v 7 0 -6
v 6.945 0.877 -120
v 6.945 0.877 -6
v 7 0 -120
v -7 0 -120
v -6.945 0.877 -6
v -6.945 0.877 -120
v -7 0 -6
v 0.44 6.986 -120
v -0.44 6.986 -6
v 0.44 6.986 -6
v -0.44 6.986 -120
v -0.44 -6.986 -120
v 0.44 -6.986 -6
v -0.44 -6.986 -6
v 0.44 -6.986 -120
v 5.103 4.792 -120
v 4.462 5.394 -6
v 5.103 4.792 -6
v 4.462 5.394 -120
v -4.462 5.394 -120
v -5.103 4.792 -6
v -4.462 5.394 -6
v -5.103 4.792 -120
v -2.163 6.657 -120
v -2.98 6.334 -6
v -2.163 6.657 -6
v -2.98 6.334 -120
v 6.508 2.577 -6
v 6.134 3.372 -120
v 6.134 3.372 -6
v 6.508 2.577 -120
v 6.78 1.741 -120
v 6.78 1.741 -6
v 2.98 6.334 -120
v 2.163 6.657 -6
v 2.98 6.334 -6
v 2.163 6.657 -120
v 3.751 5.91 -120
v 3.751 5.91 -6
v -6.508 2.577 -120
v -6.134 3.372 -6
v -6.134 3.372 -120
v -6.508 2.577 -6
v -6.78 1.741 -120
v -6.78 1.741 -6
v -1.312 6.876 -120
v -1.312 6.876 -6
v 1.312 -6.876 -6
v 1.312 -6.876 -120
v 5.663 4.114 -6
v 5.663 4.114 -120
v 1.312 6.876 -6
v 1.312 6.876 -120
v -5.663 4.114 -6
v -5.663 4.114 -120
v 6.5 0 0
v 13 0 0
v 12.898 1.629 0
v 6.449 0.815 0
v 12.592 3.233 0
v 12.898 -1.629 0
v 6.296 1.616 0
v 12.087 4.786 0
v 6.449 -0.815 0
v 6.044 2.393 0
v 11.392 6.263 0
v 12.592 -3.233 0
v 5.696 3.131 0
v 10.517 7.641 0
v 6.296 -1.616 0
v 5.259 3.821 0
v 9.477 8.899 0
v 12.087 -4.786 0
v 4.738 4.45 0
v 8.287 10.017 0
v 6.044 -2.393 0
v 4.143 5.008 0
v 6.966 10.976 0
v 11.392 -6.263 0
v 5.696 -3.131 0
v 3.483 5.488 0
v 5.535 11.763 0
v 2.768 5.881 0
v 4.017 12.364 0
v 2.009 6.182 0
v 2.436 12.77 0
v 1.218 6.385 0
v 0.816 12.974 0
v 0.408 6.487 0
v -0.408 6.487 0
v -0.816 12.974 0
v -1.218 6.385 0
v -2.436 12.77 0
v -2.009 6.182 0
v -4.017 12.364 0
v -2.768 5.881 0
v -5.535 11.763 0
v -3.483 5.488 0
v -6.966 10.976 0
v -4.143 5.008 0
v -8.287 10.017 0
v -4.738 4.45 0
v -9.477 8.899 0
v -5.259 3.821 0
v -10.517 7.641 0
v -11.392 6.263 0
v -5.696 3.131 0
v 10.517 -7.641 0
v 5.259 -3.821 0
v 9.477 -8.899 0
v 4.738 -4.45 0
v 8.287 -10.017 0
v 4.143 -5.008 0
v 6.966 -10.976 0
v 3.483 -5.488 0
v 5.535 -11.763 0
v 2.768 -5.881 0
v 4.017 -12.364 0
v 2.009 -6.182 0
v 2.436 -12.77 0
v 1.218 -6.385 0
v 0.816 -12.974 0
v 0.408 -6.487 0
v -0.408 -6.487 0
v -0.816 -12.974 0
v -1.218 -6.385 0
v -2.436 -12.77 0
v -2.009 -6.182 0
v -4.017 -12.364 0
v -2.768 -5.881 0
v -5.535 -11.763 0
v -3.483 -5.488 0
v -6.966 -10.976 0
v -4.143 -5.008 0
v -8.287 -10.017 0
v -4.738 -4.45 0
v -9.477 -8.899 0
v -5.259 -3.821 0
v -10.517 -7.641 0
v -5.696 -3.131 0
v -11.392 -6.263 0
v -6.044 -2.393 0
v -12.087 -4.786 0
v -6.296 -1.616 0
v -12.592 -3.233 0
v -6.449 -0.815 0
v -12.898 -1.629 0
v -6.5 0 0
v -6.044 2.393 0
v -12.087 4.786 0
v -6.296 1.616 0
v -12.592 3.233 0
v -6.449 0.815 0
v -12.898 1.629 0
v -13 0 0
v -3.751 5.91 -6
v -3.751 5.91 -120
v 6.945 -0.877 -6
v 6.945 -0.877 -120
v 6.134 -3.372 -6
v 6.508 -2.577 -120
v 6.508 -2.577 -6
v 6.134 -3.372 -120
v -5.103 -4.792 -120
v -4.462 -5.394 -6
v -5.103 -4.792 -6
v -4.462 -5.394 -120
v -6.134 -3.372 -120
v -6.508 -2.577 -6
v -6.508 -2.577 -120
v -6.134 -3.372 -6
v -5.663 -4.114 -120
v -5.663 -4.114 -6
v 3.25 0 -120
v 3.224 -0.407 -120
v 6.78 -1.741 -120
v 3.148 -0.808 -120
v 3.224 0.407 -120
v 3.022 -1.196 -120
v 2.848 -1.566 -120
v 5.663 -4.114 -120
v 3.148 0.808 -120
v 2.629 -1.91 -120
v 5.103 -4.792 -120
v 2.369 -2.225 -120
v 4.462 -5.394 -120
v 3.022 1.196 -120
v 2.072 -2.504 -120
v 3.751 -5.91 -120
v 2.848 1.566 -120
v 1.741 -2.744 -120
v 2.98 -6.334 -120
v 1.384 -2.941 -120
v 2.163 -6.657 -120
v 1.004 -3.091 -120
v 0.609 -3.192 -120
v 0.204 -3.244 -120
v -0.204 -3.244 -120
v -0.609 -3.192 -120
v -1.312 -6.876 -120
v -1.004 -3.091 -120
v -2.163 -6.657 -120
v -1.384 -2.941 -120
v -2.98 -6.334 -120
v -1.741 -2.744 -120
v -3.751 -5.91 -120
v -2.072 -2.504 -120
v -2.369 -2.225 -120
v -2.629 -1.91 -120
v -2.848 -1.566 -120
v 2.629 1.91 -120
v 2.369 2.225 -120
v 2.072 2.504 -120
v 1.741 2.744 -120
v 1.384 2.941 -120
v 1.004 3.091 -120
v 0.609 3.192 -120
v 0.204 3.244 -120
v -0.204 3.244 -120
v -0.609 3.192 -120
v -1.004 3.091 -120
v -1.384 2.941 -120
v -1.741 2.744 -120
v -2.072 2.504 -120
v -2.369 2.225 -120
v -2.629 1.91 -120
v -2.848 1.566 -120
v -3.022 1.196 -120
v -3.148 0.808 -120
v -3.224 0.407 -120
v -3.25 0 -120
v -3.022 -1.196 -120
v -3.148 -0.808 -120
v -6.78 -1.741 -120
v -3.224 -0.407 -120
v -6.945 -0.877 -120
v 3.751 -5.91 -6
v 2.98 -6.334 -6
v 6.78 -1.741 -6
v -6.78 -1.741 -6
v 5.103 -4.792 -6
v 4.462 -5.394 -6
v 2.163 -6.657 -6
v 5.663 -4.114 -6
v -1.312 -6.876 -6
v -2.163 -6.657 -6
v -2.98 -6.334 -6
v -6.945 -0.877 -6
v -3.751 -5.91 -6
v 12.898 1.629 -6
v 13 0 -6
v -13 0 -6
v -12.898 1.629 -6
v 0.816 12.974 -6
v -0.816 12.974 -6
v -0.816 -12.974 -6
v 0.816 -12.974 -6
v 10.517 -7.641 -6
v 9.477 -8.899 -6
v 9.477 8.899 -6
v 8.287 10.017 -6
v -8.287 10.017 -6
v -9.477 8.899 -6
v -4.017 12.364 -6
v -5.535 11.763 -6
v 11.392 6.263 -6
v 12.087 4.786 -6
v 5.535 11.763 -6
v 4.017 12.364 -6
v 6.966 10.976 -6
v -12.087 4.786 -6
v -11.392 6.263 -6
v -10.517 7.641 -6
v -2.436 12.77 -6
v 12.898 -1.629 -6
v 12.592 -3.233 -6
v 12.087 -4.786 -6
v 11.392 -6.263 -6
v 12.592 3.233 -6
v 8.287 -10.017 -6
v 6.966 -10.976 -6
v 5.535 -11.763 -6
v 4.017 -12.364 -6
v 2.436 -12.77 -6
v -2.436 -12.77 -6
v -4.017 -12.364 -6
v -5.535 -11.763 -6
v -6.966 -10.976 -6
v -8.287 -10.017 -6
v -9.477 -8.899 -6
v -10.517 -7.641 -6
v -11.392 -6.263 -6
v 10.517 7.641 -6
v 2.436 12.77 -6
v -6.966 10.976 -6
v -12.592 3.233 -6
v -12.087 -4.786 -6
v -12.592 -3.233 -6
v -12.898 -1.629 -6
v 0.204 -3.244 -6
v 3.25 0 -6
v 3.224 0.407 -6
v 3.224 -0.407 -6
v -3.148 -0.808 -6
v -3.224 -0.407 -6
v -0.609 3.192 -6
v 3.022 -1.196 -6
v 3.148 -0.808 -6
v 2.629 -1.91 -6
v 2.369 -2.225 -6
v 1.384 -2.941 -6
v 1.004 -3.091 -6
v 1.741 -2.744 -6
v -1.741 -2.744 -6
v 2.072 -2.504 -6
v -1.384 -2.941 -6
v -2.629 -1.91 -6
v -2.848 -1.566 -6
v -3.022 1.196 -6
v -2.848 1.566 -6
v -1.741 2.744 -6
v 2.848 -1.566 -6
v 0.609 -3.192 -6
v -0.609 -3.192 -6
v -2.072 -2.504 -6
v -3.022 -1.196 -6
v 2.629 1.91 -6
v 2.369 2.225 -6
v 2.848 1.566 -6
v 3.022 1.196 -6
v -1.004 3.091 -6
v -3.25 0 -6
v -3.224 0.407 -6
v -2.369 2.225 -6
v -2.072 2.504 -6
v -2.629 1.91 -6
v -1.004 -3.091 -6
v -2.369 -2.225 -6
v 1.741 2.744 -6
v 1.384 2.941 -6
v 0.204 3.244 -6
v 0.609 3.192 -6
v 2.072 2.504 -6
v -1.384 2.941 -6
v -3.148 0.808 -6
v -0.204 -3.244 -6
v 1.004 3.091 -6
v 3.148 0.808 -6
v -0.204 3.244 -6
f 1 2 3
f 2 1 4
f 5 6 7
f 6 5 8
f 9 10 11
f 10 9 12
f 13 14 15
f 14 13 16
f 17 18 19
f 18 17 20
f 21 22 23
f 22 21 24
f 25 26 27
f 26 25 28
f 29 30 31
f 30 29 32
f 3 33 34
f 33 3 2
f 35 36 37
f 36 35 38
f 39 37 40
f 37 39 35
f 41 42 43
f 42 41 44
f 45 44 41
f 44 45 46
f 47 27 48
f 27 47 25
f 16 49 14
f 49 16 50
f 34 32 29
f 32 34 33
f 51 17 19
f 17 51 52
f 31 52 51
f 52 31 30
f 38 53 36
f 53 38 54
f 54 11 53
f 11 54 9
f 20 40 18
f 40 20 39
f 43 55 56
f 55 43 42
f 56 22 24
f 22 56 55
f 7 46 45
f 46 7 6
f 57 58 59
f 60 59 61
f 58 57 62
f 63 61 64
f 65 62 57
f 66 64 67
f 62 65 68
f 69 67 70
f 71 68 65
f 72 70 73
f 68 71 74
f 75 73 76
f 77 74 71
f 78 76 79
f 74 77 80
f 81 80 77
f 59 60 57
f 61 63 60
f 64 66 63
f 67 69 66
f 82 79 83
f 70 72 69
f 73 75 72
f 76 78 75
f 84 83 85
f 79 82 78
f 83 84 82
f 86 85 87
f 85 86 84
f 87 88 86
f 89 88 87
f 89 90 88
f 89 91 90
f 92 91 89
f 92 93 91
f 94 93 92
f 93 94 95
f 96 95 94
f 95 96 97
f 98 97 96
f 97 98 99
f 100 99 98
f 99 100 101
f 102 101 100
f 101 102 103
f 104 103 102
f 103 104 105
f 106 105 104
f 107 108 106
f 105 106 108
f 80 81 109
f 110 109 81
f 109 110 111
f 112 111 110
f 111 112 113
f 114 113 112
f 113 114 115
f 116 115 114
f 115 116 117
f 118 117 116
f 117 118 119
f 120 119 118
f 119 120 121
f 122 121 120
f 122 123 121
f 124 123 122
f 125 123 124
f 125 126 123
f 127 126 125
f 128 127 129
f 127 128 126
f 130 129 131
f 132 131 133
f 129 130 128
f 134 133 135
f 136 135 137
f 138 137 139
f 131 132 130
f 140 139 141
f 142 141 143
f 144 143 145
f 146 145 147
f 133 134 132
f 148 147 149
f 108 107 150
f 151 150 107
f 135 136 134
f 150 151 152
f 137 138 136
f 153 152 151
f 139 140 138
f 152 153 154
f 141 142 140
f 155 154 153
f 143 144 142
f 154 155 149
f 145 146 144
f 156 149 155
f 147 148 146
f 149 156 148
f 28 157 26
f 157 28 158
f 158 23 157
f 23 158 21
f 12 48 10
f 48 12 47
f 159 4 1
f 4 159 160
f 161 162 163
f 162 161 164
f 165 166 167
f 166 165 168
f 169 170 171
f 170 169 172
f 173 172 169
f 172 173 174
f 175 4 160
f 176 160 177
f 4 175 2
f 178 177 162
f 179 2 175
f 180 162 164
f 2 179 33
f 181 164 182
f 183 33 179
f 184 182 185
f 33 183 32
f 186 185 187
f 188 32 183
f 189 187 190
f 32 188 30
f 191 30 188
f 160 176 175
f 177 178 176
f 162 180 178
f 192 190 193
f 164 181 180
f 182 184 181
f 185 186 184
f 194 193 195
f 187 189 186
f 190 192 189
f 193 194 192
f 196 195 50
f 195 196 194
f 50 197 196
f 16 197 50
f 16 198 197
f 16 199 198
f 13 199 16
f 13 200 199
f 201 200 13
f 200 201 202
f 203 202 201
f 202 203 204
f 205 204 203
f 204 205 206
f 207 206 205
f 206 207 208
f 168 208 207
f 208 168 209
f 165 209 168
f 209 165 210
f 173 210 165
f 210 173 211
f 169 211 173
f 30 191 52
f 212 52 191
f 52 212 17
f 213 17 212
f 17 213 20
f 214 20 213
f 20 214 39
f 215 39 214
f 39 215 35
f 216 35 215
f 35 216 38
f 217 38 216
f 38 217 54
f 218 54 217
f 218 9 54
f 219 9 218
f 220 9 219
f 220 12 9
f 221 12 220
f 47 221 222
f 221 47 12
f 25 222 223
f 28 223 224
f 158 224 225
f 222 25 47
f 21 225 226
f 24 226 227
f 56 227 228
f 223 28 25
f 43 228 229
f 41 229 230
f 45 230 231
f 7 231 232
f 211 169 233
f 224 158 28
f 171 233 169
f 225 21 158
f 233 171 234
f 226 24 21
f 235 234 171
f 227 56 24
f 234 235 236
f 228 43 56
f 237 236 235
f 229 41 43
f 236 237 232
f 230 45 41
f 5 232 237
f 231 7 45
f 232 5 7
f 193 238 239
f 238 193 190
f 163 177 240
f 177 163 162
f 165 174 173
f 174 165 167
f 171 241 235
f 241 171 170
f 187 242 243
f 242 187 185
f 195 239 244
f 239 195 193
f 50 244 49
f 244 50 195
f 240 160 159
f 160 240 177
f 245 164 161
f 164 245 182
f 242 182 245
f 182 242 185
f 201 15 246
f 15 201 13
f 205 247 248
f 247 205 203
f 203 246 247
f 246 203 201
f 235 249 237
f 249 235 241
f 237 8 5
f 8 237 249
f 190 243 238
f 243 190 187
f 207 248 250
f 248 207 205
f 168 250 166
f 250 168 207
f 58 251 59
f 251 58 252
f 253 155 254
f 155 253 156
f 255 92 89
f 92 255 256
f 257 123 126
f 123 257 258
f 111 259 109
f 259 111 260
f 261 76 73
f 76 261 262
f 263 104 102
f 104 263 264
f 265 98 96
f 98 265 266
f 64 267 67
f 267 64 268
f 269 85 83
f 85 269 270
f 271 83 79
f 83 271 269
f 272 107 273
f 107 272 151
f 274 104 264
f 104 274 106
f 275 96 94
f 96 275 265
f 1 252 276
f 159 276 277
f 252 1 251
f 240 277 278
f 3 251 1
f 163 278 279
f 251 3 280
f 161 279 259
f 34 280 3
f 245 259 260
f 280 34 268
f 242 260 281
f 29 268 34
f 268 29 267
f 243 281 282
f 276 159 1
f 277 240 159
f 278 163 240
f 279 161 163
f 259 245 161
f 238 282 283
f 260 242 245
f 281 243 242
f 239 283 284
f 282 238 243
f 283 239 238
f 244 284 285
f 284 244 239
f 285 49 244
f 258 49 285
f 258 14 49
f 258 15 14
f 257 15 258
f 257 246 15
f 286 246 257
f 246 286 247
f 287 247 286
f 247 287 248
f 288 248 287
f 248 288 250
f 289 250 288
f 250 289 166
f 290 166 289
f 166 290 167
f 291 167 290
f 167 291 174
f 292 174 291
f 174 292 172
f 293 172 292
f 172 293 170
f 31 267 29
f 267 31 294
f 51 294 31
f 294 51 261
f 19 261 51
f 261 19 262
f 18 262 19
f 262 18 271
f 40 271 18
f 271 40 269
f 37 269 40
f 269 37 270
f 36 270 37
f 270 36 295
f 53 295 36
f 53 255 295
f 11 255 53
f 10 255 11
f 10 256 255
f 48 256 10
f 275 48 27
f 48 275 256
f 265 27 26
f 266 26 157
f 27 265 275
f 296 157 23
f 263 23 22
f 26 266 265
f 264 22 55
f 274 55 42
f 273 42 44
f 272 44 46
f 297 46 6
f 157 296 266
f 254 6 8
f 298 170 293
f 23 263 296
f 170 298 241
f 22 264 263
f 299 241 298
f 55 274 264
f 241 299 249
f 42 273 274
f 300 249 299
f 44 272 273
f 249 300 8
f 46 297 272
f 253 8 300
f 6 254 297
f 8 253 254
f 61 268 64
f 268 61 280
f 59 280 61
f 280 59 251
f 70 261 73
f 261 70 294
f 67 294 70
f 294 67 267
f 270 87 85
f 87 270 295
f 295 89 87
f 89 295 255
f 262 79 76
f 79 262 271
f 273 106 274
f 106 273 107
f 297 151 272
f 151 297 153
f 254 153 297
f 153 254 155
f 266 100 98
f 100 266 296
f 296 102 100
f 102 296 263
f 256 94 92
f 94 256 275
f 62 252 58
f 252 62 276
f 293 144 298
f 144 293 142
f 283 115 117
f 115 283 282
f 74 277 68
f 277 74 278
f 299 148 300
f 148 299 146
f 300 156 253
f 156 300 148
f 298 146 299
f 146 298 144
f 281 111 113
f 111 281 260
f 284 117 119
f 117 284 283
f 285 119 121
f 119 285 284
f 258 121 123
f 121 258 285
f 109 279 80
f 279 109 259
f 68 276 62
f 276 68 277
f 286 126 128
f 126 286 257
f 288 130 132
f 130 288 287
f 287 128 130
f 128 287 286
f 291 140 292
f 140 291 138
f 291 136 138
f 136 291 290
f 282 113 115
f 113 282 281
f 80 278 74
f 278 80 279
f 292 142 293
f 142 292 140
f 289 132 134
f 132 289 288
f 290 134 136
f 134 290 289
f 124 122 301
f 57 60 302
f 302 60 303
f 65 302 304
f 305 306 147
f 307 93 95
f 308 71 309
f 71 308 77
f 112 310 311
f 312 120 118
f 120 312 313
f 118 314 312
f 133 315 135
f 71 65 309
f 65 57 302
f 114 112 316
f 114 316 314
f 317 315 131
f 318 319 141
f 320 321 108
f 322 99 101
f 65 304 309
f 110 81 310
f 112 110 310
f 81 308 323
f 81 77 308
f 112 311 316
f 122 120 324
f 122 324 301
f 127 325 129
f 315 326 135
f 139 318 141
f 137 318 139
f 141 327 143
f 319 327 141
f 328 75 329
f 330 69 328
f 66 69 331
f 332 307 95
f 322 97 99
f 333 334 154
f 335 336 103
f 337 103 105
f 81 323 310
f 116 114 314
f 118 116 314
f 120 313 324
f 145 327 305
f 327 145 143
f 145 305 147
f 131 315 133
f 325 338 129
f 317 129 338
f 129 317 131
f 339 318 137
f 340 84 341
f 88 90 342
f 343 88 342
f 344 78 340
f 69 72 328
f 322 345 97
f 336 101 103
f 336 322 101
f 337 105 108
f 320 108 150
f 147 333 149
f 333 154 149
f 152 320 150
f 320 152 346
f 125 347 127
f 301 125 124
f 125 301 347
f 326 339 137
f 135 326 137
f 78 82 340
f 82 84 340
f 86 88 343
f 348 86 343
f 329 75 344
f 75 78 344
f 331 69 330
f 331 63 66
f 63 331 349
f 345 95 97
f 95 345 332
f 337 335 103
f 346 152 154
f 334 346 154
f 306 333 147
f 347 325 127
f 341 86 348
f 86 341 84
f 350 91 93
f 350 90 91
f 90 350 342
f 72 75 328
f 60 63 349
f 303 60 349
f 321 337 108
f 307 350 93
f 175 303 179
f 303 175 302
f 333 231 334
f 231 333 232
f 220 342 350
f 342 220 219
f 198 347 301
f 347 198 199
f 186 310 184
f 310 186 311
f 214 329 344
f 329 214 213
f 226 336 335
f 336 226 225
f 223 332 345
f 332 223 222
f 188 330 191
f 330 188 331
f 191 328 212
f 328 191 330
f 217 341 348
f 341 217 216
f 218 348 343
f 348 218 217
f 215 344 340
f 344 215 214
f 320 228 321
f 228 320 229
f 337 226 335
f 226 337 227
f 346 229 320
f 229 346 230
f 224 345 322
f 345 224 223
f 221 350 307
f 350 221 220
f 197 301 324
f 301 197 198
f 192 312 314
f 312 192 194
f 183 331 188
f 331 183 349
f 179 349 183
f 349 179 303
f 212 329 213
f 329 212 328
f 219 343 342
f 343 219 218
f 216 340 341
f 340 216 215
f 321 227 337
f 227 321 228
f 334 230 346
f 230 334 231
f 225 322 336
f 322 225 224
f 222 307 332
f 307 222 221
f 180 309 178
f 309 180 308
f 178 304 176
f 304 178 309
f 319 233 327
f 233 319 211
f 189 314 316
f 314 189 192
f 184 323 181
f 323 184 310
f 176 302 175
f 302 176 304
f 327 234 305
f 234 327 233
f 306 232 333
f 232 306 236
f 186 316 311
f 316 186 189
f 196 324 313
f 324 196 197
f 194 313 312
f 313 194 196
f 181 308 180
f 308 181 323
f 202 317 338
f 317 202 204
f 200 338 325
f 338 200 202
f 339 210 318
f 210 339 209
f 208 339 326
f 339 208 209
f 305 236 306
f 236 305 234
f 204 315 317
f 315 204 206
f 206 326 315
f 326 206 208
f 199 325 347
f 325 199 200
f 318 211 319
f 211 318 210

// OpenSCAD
$fn = 50;


difference() {
	union() {
		translate(v = [0, 0, -120.0000000000]) {
			cylinder(h = 120, r = 7.0000000000);
		}
		translate(v = [0, 0, -6.0000000000]) {
			cylinder(h = 6, r = 13.0000000000);
		}
	}
	union() {
		translate(v = [0, 0, 0]) {
			rotate(a = [0, 0, 0]) {
				difference() {
					union() {
						#translate(v = [0, 0, -120.0000000000]) {
							cylinder(h = 120, r = 2.2500000000);
						}
						#translate(v = [0, 0, -6]) {
							cylinder(h = 6, r1 = 3.2500000000, r2 = 6.5000000000);
						}
						#translate(v = [0, 0, -120.0000000000]) {
							cylinder(h = 120, r = 3.2500000000);
						}
						#translate(v = [0, 0, -120.0000000000]) {
							cylinder(h = 120, r = 2.2500000000);
						}
					}
					union();
				}
			}
		}
	}
}
